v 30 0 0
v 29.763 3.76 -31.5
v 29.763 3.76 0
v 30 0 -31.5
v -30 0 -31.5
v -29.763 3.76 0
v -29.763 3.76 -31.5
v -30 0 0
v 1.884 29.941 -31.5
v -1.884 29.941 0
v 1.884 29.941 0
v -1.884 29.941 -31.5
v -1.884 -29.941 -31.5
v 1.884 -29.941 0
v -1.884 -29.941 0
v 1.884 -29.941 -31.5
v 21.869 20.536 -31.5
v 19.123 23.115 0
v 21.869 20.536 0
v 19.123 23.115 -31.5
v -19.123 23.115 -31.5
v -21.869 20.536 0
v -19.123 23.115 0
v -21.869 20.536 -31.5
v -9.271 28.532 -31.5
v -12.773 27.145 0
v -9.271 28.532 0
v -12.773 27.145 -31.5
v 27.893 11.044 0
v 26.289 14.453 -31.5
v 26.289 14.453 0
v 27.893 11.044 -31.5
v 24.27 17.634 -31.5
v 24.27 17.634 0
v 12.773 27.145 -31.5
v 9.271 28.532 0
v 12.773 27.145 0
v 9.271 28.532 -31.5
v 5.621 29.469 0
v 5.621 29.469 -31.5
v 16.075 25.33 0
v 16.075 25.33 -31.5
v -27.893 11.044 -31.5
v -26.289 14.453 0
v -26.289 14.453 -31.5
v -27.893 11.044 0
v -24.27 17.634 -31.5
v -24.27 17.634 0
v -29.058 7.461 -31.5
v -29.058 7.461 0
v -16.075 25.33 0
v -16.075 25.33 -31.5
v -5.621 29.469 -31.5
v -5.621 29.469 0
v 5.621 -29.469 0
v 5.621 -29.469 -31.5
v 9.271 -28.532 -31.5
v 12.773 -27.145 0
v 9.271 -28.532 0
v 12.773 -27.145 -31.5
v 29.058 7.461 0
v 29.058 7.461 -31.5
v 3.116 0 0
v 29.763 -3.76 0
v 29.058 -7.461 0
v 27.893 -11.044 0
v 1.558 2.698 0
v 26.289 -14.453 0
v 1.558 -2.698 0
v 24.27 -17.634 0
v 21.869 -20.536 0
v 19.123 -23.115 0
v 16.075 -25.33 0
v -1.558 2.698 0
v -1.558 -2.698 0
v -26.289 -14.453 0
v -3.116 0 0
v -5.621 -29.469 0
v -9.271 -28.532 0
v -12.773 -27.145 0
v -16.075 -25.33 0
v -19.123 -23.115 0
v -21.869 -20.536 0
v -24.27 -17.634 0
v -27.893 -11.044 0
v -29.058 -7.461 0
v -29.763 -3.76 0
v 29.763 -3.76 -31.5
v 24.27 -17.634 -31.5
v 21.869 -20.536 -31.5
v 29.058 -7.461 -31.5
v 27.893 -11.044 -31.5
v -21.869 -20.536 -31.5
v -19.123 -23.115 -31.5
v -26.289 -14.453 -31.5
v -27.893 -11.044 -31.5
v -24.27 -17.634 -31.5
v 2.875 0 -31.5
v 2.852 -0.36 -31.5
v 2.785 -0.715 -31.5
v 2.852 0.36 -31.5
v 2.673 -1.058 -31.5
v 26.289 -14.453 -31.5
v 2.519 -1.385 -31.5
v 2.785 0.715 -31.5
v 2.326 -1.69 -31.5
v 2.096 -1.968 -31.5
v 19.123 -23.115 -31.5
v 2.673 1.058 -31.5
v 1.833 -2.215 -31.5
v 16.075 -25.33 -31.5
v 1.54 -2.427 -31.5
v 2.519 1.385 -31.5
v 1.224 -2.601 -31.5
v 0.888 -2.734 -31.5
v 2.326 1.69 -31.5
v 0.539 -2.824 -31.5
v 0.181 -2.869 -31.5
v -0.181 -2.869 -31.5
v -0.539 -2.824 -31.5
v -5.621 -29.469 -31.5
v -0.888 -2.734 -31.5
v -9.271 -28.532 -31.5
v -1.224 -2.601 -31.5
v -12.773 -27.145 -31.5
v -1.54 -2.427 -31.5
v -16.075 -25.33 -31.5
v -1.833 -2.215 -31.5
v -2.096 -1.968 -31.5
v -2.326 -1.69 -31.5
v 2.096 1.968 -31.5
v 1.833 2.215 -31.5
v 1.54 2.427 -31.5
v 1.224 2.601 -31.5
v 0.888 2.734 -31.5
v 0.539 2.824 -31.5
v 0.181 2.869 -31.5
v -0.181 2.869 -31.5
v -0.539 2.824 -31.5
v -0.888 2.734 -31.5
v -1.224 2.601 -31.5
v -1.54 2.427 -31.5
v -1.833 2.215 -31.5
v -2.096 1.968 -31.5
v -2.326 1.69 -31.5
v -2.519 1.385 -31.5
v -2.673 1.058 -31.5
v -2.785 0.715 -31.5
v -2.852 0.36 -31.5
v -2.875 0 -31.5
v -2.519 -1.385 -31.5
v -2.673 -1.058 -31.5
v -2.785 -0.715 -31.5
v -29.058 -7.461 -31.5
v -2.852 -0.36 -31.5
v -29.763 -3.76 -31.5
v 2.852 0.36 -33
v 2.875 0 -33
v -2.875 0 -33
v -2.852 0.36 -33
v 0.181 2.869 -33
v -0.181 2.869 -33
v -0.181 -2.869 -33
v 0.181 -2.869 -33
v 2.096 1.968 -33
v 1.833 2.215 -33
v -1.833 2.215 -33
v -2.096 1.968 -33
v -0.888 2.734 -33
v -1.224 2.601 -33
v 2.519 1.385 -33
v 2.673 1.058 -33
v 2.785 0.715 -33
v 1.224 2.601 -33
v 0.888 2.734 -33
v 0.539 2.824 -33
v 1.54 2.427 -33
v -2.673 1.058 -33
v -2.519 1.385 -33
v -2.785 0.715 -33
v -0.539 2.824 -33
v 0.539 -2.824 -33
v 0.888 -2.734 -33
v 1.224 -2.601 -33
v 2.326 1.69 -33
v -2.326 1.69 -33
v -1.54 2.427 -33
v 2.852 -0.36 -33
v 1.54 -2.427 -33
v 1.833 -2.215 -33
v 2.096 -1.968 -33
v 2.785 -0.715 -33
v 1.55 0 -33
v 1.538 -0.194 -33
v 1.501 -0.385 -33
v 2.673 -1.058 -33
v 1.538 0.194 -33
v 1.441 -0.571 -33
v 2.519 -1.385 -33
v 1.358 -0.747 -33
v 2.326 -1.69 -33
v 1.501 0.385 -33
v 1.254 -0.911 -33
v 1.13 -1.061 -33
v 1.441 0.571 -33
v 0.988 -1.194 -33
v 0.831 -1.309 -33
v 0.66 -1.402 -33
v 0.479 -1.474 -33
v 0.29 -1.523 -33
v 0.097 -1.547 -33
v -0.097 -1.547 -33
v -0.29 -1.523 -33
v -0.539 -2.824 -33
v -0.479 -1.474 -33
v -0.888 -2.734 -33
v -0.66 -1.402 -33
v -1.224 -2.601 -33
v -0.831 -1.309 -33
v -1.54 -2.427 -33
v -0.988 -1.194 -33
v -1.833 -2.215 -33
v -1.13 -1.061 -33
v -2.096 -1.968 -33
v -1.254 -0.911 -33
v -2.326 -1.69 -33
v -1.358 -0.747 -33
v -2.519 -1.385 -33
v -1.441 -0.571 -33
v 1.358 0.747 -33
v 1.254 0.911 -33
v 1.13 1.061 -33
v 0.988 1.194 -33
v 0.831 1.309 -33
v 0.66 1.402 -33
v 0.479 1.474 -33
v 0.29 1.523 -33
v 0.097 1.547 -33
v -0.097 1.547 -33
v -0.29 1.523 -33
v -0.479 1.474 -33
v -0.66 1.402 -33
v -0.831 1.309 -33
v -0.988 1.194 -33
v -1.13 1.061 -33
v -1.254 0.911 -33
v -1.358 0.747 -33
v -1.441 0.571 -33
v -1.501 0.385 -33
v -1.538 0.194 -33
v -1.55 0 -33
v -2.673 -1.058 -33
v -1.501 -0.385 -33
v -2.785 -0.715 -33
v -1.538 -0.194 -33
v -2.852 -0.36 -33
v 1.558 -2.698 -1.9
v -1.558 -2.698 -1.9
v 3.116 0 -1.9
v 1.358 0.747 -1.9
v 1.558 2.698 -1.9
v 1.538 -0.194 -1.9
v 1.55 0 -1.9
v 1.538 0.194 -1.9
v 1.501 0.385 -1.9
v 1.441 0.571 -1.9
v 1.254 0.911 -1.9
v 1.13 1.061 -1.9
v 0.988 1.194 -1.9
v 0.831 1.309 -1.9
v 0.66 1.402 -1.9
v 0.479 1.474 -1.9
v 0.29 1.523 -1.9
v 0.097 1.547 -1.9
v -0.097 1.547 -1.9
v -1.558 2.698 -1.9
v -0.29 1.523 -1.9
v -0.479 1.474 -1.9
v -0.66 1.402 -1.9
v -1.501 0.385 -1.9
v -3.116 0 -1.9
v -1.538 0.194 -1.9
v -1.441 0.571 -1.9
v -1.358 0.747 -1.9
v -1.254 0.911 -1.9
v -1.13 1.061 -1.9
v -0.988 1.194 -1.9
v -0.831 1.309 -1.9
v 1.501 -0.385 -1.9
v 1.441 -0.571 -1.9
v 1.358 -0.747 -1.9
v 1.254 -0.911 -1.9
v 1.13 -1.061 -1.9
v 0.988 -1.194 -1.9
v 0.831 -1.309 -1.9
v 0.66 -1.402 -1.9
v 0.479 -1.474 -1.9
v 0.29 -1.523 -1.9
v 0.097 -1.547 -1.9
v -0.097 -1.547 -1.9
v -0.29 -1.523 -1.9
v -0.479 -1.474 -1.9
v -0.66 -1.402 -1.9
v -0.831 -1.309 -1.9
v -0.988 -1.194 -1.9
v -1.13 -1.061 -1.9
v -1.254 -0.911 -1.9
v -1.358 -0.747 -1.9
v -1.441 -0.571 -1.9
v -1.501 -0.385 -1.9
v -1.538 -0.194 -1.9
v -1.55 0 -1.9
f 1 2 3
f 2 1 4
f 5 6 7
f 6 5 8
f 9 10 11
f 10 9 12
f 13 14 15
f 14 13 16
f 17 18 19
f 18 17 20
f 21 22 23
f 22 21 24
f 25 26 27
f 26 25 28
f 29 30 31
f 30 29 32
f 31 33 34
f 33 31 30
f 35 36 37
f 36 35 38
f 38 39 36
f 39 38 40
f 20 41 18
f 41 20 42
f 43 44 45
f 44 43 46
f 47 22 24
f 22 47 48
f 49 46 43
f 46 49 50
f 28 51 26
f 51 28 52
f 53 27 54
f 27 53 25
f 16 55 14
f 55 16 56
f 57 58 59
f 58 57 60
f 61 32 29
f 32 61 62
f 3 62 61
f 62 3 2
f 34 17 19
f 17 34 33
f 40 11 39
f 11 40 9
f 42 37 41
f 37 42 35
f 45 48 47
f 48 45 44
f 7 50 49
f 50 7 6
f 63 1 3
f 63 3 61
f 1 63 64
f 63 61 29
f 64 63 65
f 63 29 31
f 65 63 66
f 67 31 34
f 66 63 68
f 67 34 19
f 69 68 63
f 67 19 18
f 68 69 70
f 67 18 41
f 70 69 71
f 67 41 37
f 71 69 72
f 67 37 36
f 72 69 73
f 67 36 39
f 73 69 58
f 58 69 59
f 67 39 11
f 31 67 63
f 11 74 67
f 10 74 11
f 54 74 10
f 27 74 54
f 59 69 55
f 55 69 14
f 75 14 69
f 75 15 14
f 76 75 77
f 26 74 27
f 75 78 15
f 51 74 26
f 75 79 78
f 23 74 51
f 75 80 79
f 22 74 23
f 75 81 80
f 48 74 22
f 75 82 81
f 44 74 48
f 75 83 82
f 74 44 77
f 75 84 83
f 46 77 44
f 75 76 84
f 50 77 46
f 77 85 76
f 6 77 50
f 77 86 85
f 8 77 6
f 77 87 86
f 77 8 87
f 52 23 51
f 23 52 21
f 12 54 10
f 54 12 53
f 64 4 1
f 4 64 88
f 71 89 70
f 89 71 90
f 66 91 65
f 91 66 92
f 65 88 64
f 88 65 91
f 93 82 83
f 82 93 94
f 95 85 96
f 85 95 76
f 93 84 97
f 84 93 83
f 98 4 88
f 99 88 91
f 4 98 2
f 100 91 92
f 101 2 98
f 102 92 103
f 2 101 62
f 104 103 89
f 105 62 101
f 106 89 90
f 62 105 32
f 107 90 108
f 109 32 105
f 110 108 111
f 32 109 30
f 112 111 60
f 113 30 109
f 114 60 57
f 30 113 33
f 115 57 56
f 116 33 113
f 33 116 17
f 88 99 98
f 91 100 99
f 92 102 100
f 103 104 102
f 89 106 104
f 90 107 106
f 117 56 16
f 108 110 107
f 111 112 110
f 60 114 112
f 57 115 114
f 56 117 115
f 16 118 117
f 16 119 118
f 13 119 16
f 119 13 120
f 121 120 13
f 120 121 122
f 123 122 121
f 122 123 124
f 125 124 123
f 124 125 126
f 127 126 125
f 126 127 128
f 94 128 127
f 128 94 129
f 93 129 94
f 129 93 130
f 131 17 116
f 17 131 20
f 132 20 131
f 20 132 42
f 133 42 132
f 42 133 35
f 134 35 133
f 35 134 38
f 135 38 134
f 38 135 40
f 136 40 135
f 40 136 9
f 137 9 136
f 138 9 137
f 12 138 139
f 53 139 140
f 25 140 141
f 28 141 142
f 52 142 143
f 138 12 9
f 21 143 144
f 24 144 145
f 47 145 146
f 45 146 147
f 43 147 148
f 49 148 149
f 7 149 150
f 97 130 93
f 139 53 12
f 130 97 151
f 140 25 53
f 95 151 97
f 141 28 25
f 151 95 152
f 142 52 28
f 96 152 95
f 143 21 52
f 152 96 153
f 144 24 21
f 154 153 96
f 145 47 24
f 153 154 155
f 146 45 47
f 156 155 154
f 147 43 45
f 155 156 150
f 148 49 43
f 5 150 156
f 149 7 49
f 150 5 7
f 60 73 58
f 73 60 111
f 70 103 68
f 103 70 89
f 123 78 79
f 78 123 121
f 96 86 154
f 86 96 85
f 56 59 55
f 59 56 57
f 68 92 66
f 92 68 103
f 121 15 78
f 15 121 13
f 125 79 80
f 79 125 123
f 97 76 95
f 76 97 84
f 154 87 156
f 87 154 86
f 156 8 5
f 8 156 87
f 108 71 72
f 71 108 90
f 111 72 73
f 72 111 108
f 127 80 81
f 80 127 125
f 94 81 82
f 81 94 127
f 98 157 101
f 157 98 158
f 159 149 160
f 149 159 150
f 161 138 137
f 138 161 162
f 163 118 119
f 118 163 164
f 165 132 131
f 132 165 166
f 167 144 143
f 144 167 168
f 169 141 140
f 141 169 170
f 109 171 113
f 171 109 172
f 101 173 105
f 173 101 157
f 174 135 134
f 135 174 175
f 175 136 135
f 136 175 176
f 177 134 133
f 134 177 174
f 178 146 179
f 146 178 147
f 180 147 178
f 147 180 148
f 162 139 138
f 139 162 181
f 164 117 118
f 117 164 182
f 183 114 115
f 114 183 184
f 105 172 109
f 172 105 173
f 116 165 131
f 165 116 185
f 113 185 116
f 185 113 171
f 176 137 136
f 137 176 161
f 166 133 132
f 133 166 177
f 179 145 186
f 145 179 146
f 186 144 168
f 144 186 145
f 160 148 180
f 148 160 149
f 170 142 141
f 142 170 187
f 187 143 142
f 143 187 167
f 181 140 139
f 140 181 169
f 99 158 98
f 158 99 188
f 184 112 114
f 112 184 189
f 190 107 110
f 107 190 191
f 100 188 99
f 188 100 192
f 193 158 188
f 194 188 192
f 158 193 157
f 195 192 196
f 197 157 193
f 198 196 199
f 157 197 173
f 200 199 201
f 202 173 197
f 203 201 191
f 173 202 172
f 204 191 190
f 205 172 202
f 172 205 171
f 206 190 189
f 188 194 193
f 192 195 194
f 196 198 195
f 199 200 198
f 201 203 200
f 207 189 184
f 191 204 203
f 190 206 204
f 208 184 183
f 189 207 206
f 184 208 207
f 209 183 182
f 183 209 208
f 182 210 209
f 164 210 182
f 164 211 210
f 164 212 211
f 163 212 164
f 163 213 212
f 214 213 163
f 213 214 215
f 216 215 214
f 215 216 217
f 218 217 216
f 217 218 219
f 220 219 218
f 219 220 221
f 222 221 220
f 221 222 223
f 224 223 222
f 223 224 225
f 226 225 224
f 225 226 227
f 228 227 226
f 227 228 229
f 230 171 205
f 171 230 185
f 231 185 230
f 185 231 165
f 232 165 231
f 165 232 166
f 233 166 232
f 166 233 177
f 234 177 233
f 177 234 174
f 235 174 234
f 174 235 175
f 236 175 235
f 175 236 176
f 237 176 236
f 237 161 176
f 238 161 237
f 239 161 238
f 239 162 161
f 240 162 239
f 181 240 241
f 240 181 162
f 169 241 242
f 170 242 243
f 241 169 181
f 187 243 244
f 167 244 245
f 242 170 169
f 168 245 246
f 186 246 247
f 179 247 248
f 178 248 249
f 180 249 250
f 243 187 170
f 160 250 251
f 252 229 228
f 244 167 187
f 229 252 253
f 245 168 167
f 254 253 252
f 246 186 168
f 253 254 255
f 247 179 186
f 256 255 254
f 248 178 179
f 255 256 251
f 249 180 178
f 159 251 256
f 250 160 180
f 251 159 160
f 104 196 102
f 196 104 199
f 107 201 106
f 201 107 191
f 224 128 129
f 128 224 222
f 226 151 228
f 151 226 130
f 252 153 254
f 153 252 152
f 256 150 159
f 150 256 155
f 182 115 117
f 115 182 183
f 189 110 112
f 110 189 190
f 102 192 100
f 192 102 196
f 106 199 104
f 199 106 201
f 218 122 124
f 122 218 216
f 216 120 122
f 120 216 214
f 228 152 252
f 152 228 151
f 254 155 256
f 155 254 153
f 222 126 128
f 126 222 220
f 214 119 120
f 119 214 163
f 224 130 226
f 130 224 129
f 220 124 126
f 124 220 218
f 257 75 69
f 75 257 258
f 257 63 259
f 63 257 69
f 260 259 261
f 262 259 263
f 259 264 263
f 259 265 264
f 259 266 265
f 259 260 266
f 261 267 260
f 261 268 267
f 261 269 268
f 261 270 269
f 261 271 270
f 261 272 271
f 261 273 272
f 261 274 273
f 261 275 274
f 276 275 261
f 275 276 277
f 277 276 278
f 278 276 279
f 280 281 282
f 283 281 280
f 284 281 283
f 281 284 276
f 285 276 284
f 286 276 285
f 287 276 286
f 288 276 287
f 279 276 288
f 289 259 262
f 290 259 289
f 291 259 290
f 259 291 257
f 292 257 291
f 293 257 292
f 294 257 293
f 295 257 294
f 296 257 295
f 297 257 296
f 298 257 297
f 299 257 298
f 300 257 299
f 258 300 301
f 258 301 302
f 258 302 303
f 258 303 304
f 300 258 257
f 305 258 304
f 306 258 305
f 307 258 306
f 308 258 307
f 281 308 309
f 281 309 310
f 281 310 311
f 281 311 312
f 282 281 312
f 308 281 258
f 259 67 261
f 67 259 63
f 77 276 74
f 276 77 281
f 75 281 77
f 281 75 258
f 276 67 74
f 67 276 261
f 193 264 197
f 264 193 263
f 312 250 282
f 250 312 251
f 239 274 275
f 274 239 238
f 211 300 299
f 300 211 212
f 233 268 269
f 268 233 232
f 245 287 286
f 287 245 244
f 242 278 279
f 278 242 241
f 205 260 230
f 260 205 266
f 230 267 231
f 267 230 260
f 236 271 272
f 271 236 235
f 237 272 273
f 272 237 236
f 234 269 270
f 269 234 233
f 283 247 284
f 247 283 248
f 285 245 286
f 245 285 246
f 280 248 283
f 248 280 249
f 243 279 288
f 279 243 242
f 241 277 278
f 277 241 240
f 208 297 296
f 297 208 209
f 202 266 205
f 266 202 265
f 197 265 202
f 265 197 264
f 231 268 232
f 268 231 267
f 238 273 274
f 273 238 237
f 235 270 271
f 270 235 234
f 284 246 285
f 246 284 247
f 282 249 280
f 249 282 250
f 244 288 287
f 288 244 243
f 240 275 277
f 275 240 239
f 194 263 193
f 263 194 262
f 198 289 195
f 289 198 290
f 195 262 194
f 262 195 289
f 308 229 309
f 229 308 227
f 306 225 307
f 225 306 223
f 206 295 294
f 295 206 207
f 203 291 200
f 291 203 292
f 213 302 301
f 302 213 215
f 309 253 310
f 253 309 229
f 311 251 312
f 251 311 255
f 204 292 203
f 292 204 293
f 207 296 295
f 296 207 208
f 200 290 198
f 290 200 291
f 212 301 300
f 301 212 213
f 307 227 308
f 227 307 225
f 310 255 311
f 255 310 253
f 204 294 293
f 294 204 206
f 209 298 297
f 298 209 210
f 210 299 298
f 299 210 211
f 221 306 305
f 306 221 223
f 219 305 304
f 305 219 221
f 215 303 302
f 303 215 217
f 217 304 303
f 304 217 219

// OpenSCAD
$fn = 50;

difference() {
	union() {
		translate(v = [0, 0, -31.5]) {
			cylinder(h = 31.5, r = 30.0);
		}
		#translate(v = [0, 0, -33.0]) {
			cylinder(h = 33, r = 2.875);
		}
	}
	union() {
		translate(v = [0, 0, 0]) {
			rotate(a = [0, 0, 0]) {
				difference() {
					union() {
						translate(v = [0, 0, -1.9]) {
							linear_extrude(height = 1.9) {
								polygon(points = [[3.1158, 0.0], [1.5579000000000005, 2.698361953111554], [-1.5578999999999994, 2.6983619531115544], [-3.1158, 3.815754496783323e-16], [-1.5579000000000014, -2.6983619531115535], [1.557899999999998, -2.6983619531115552]]);
							}
						}
					}
					union();
				}
			}
		}
		#translate(v = [0, 0, -100.0]) {
			cylinder(h = 200, r = 1.55);
		}
	}
}
